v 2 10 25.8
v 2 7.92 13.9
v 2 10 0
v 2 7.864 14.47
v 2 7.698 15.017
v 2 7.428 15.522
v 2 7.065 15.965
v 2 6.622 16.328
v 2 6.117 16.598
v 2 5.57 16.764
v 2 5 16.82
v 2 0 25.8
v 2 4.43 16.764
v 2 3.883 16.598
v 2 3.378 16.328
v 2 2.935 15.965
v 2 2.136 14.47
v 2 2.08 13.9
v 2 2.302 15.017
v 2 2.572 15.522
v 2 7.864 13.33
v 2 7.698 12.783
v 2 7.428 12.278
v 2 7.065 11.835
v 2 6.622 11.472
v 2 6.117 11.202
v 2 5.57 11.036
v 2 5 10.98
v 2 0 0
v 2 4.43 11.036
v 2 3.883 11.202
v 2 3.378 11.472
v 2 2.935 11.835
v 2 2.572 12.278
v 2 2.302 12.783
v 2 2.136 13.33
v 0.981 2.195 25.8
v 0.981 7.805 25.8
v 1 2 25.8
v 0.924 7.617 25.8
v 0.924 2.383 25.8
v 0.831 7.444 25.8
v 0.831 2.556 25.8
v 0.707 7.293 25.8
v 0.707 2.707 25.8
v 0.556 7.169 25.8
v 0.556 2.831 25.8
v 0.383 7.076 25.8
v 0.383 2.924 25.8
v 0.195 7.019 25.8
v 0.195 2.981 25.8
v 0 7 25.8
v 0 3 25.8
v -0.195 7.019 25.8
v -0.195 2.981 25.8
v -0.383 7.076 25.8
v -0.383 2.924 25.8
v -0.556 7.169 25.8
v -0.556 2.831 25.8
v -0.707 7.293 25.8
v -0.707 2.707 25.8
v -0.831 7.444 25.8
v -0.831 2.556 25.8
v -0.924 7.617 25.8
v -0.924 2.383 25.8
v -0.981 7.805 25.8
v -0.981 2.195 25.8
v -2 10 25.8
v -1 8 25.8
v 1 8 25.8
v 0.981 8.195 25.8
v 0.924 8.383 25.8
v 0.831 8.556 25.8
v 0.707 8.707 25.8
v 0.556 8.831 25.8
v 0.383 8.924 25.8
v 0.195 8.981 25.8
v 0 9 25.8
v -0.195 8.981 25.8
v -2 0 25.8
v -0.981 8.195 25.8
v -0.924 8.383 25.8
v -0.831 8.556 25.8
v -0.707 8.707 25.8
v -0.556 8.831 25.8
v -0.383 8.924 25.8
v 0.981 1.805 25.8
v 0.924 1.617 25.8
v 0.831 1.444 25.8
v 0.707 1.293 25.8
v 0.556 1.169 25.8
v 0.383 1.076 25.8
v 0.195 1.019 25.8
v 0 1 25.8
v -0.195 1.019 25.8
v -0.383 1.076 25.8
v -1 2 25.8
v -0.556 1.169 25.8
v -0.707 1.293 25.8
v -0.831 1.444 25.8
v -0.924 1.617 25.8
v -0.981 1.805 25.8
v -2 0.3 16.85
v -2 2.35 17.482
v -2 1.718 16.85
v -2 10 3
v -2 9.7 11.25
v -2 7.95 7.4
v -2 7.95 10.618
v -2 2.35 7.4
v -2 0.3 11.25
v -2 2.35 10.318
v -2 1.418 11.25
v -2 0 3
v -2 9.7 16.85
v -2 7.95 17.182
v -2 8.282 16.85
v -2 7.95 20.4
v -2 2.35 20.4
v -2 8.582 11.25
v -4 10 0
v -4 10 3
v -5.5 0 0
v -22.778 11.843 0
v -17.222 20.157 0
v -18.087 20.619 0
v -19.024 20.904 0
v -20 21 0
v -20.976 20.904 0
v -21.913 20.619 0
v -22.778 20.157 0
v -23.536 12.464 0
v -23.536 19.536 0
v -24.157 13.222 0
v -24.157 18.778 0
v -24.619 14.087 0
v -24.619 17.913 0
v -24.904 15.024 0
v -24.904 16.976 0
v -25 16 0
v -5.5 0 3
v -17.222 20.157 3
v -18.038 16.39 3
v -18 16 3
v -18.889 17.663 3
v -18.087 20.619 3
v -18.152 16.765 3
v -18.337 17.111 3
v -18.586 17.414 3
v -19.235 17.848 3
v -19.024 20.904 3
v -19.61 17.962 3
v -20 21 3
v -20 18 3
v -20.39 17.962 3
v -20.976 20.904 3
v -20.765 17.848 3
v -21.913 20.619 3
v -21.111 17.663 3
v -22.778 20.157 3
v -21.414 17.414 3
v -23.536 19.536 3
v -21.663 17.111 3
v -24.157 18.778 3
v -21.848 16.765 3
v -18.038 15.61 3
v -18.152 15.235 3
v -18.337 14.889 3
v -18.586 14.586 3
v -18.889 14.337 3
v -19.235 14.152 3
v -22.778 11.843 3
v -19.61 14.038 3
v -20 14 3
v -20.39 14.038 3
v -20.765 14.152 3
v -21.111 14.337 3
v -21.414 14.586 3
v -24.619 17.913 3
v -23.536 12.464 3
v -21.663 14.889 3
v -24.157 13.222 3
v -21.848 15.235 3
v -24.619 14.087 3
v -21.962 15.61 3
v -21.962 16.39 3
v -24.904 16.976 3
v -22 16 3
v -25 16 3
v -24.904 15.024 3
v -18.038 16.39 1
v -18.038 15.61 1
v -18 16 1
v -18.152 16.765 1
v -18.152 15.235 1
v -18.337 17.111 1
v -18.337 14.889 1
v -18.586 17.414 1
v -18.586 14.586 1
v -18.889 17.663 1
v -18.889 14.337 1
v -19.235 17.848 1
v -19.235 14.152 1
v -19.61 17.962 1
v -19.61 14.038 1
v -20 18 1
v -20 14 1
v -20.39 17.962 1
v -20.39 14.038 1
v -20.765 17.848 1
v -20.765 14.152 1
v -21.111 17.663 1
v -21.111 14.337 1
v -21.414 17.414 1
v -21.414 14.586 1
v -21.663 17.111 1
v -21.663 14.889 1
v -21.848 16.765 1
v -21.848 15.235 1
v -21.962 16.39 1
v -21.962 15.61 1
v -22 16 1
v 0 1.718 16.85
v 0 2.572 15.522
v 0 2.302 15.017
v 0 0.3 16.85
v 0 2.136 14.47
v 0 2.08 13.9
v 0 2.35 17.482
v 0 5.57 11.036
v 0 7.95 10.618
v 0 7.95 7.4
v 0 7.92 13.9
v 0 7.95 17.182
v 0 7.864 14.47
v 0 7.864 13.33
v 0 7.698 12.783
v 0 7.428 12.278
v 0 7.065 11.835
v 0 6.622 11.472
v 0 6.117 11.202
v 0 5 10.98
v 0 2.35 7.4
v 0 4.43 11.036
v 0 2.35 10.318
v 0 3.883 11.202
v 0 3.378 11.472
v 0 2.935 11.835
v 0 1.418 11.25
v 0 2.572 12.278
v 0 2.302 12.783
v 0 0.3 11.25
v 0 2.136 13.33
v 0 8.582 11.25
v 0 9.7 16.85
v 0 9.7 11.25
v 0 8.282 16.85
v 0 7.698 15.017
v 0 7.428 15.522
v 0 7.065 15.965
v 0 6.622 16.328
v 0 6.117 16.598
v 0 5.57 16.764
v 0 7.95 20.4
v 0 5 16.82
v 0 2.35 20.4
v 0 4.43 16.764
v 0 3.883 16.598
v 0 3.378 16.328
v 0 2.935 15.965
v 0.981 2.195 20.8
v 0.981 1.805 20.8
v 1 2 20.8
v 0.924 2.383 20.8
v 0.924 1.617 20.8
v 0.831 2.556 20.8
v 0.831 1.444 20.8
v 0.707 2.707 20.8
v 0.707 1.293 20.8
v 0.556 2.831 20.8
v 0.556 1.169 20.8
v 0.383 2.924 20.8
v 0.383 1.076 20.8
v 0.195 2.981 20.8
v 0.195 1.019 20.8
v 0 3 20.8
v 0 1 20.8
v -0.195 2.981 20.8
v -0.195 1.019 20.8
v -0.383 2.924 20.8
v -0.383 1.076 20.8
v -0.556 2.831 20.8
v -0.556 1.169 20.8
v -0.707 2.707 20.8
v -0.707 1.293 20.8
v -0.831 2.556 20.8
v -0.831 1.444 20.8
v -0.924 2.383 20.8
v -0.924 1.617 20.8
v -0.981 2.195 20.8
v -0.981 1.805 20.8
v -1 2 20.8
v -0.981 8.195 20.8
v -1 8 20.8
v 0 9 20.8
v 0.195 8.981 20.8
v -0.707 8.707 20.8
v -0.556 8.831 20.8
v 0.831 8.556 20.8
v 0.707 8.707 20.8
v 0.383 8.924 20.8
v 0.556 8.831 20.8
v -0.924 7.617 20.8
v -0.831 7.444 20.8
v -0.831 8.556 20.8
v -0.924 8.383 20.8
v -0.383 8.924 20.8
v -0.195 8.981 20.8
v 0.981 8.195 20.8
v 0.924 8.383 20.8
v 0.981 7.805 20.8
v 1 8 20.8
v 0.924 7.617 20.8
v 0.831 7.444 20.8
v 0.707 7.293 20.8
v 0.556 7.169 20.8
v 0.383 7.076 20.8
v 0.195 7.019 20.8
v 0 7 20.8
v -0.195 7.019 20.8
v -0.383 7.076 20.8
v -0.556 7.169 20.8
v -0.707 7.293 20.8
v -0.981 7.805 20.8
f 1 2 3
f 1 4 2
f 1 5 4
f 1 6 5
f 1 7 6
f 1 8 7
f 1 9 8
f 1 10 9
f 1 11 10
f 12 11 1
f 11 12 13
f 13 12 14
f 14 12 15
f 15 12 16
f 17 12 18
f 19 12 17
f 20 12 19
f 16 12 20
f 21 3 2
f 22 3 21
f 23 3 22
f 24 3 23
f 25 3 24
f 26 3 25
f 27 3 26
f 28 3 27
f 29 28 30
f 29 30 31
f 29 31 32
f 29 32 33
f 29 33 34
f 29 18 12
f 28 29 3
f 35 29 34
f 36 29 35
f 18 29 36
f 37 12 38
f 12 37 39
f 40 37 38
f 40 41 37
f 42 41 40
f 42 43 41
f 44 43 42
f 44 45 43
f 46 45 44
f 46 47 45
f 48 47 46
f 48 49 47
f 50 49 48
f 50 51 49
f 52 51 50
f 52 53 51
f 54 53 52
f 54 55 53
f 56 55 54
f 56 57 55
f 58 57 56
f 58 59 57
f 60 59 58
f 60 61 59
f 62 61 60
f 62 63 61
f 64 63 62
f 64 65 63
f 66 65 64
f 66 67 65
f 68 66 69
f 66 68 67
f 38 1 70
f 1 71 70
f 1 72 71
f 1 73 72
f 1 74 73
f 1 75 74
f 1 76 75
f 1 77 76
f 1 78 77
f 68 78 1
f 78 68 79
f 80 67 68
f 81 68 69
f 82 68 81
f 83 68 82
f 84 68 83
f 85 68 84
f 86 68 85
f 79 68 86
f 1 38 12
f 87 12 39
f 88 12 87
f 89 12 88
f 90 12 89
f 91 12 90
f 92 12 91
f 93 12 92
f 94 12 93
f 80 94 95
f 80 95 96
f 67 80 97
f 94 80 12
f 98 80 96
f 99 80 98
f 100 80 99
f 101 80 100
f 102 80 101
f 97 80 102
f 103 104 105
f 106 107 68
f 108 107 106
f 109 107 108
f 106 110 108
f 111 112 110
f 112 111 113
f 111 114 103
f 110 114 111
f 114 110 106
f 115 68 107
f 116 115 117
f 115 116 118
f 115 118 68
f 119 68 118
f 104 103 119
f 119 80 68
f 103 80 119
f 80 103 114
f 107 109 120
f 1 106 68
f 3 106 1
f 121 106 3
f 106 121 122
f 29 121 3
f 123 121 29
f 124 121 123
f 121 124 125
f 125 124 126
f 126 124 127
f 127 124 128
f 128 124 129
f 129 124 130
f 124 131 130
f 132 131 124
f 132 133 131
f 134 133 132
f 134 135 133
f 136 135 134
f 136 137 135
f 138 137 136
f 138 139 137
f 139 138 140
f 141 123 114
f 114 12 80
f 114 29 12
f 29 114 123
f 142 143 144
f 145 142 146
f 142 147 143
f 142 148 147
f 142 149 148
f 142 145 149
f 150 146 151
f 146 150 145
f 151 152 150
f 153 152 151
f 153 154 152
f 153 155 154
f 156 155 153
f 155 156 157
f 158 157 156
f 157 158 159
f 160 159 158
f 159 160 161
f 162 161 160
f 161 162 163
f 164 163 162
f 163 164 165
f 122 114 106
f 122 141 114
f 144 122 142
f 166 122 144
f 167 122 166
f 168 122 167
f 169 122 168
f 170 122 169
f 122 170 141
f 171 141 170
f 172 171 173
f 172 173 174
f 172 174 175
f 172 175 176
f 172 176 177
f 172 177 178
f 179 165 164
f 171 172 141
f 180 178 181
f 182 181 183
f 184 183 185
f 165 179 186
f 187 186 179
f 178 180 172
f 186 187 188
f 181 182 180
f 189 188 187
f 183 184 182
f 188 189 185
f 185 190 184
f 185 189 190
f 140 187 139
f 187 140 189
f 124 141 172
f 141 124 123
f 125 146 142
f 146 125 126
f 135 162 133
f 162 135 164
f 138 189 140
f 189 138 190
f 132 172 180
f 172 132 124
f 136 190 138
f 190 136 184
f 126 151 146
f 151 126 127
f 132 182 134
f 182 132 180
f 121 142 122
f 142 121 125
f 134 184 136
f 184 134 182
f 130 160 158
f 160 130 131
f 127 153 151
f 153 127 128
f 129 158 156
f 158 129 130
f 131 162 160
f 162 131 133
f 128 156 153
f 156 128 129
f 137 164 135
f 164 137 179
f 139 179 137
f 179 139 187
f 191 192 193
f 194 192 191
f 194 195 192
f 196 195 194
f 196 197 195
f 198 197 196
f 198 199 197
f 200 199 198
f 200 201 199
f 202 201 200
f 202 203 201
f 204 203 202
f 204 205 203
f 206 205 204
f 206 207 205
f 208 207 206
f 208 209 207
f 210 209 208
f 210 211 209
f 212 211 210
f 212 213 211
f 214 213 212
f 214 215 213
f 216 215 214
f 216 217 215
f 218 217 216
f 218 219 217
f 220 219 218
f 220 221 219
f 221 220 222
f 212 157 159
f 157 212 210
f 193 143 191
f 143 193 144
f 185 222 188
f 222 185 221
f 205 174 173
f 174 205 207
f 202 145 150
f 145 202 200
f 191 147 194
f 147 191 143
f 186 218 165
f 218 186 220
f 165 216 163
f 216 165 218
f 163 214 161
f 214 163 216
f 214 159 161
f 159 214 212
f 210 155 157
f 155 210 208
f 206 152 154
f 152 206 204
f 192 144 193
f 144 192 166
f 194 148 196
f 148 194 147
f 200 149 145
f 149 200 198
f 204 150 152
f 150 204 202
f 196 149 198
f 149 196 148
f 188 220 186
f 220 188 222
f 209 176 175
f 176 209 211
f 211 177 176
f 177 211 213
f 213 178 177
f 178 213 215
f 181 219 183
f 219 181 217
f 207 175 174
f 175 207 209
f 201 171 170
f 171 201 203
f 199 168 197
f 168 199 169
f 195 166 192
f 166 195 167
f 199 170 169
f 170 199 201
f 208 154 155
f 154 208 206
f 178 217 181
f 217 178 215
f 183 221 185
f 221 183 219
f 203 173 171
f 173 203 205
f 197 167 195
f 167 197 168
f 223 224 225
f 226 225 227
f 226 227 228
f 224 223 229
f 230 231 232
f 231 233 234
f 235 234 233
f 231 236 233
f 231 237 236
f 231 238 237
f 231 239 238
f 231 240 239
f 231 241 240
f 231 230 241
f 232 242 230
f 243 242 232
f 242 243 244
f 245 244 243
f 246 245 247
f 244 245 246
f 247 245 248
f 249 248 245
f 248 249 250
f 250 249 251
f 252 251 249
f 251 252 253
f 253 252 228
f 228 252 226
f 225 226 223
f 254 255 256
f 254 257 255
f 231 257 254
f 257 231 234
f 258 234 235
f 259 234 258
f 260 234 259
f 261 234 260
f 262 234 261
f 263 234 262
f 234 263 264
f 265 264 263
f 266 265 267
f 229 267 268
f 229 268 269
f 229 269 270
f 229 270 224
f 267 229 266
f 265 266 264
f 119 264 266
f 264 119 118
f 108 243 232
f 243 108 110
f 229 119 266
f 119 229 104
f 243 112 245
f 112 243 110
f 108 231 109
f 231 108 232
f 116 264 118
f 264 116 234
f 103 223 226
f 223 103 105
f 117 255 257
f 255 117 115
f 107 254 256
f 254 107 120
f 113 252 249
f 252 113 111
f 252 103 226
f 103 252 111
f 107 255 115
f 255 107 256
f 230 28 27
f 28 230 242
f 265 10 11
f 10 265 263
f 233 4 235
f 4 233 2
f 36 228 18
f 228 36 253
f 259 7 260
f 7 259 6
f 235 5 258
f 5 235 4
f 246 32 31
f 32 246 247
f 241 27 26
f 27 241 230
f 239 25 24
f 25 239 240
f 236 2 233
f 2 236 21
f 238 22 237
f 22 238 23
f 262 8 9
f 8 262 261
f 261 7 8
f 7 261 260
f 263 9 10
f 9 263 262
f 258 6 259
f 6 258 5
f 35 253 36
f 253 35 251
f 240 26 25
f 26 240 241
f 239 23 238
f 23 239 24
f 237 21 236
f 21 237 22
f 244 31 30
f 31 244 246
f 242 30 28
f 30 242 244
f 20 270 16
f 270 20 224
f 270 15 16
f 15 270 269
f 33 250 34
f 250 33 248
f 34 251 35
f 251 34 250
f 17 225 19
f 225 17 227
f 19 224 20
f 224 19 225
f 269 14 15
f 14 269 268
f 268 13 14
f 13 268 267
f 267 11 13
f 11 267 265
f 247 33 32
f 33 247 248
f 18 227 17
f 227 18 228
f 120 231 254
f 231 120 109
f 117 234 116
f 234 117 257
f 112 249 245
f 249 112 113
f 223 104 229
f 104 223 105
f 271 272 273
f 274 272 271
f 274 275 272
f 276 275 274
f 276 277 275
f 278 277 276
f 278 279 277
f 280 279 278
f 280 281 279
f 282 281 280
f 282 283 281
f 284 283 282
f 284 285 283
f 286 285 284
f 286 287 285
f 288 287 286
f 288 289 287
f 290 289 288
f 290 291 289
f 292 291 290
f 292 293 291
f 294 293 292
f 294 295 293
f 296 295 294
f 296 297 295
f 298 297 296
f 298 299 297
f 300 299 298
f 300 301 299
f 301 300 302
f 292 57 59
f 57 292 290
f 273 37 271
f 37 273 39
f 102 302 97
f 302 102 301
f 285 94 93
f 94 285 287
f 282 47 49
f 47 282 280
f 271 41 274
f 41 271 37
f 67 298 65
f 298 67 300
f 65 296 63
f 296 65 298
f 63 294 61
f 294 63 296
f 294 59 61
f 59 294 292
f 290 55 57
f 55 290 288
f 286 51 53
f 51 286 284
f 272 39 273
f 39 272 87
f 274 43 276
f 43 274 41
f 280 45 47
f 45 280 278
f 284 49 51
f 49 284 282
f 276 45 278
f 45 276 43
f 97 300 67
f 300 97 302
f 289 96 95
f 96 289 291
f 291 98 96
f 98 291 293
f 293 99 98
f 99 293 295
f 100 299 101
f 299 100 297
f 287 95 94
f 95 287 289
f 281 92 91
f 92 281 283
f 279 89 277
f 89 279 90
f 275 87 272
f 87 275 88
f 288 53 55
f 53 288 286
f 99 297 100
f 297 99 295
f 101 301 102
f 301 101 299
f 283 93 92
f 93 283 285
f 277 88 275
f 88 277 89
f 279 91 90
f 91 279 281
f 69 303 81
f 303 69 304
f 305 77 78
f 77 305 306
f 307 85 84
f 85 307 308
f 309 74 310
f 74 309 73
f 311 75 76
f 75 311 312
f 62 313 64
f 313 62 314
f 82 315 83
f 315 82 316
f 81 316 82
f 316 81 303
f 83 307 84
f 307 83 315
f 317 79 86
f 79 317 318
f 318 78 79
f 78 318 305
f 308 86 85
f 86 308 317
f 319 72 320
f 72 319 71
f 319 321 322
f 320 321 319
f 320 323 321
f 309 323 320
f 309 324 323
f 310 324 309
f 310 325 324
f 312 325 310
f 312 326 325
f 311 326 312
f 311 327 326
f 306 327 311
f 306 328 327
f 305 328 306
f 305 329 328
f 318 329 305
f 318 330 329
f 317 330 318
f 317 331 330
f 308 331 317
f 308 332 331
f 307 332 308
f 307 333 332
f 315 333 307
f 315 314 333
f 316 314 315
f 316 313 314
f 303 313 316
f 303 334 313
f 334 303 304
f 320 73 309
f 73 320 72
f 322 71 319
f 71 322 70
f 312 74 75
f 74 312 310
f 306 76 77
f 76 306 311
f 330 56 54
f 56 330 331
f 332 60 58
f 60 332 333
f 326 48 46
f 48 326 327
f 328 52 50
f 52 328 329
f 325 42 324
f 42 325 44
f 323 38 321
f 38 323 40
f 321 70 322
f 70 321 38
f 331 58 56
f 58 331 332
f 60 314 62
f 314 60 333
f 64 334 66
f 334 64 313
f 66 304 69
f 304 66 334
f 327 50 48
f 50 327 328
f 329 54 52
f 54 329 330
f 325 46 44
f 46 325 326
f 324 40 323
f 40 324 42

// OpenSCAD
// file: config.scad
//Parameters for servo_lx16a
$fn = 24;
//x,y,z => l,w,h


servo_l         = 45.20; 
servo_w         = 24.70; 
body_h          = 32;

servo_h         = 35;

hub_offset      = 10.10;

rad = 2;


w_between_holes = 20.5;
l_between_top_holes = 20.7;
l_between_bottom_holes = 24.45;
top_hole_l_offset = 6.1;
bottom_hole_l_offset = 2.35;

hole_dia = 1.6;
attach_screw_l = 5;

top_hub_carve_h = 2.6;
bottom_hub_carve_h = 3.4;

top_attach_carve_h = 1.1;
bottom_attach_carve_h = 1.9;

hub_carve_r = 10.8;

hub_r = 10.1;

w_between_ridges = 19.5;

top_horn_h = 3.20;
bottom_horn_h = 3.85;

top_horn_r = 3.15;
bottom_horn_r = 3;



hub_h           = 4;
small_hub_r     = 6.15/2;  
horn_r          = 4.66/2;
horn_h          = 3;

wire_l          = 4;
wire_w          = 1.5;
wire_h          = 1;
wire_place      = 4.8;
// file: electronics.scad
$fn=100;

//on_off_switch();

//pi_zero();

//translate ([0,100,0])
//pca9685();

//dc_dc();

//pi_camera();



module header(pins, rows){
  color("darkgrey") cube([2.54*pins,2.54*rows,1.27]);
  
  color("gold")
  for(x=[0:pins-1],y=[0:rows-1])
    translate([x*2.54+(1.27+.6)/2,y*2.54+(1.27+.6)/2,-3.5]) cube([0.6,0.6,11.5]);
}


module pi_zero(){
    // PCB
    color("limegreen") difference(){
        hull(){
            translate([-(65-6)/2,-(30-6)/2,0]) cylinder(r=3, h=1.4 );
            translate([-(65-6)/2, (30-6)/2,0]) cylinder(r=3, h=1.4 );
            translate([ (65-6)/2,-(30-6)/2,0]) cylinder(r=3, h=1.4 );
            translate([ (65-6)/2, (30-6)/2,0]) cylinder(r=3, h=1.4 );
        }
        
        translate([-65/2+3.5,-30/2+3.5,-1]) cylinder(d=2.75, h=3);
        translate([-65/2+3.5, 30/2-3.5,-1]) cylinder(d=2.75, h=3);
        translate([65/2-3.5,-30/2+3.5,-1]) cylinder(d=2.75, h=3);
        translate([65/2-3.5, 30/2-3.5,-1]) cylinder(d=2.75, h=3);
    }
    
    // Header
    translate([-10*2.54,30/2-2.54-3.5,1.4])
    header(20,2);
    
    translate([-65/2,-30/2,1.4]){
        color("silver"){
        
            // micro USB
            translate([41-8/2,-1.5,0]) cube([8,6,2.6]);
            translate([54-8/2,-1.5,0]) cube([8,6,2.6]);        
            
            // HDMI
            translate([6.9,-1.5,0]) cube([13,7,3]);
        }
    
        color("darkgrey"){
        
            // Camera
            translate([64-4/2,7.1,0]) cube([4,16,2.5]);
        }
    
        // Micro SD Card
        color("silver") translate([0,8.6,-0]) cube([13,14,1.5]);    
        color("darkgrey") translate([-2.4,10.1,0]) cube([2.4,11,1]);
    }
}



module pca9685(withHeader=true){  
  
    // PCB
    color("limegreen") difference(){
        translate([0,0,0]) hull(){
            translate([-(62.5-6)/2,-(25.4-6)/2,0]) cylinder(r=3, h=1.4 );
            translate([-(62.5-6)/2, (25.4-6)/2,0]) cylinder(r=3, h=1.4 );
            translate([ (62.5-6)/2,-(25.4-6)/2,0]) cylinder(r=3, h=1.4 );
            translate([ (62.5-6)/2, (25.4-6)/2,0]) cylinder(r=3, h=1.4 );
        }
        
        translate([-55.9/2,-18.8/2,-1]) cylinder(d=2.75, h=3);
        translate([-55.9/2, 18.8/2,-1]) cylinder(d=2.75, h=3);
        translate([55.9/2,-18.8/2,-1]) cylinder(d=2.75, h=3);
        translate([55.9/2, 18.8/2,-1]) cylinder(d=2.75, h=3);
    } 
    
    
    // capacitor
    color("silver")
    translate([-(62.5/2)+17.1,(25.4-8.3)/2,1.4])
    cylinder(d=8.3, h=12.7);
    
    //power connector
    color("blue")
    translate([-(62.5/2)+25.1+2.54*2,(25.4-8.3)/2,1.4])
    cube([2.54*2,4,8]);
    
    // Header top
    translate([-(62.5/2)+5.65,-25.4/2,1.4])
    header(4,3);
    
    translate([2.25,-25.4/2,1.4])
    header(4,3);
    
    translate([-2.25-2.54*4,-25.4/2,1.4])
    header(4,3);
    
    translate([62.5/2-5.65-2.54*4,-25.4/2,1.4])
    header(4,3);
    
    translate([62.5/2,-25.4/2+5.08,1.4])
    rotate([0,0,90])
    header(6,1);
    
    translate([-62.5/2+2.54,-25.4/2+5.08,1.4])
    rotate([0,0,90])
    header(6,1);

  
}

module dc_dc(){
    
    // PCB
    color("limegreen") difference(){
        translate([0,0,0]) hull(){
            translate([-(24.5-6)/2,-(48-6)/2,0]) cylinder(r=3, h=1.4 );
            translate([-(24.5-6)/2, (48-6)/2,0]) cylinder(r=3, h=1.4 );
            translate([ (24.5-6)/2,-(48-6)/2,0]) cylinder(r=3, h=1.4 );
            translate([ (24.5-6)/2, (48-6)/2,0]) cylinder(r=3, h=1.4 );
        }
      
        translate([0,0,-1]) {
            
            //translate([-17/2,-35/2,0])
            //cylinder(d=3.15, h=2.5);
            
            translate([-17/2,35/2, 0])
            cylinder(d=3.15, h=2.5);
            
            translate([17/2,-35/2, 0])
            cylinder(d=3.15, h=2.5);
            
            //translate([17/2,35/2, 0])
            //cylinder(d=3.15, h=2.5); 
          
        }


    } 
    
    
    // capacitors
    color("darkblue")
    translate([-(24.5/2)+12.1,(48-8)/2,1.4])
    cylinder(d=8, h=10);
    
    color("darkblue")
    translate([-(24.5/2)+12.1,-(48-8)/2,1.4])
    cylinder(d=8, h=10);
    
    //toroid
    
    difference(){
        
        color("orange")
        translate([(24.5/2)-22.1+9,(48-30)/2,1.4])
        cylinder(d=12, h=7.6);
        
        color("orange")
        translate([(24.5/2)-22.1+9,(48-30)/2,0.5])
        cylinder(d=6, h=11);

        
    }
    
    
    //potentiometer
    color("blue")
    translate([24.5/2-2,-48/2+9,1.4])
    rotate([0,0,90])
    cube([5,10,11]);
    
    
    //IC
    color("black")
    translate([24.5/2-8,-48/2+15,1.4])
    rotate([0,0,90])
    cube([11,11,5]);
    
    
}


module on_off_switch(){
    
    union(){
        
        color("silver")
        translate([-8/2, -4/2, 0])
        cube([8, 4, 3.8]);
        
        color("black")
        translate([-1.5/2, -1.5/2, 3.8])
        cube([1.5, 1.5, 3]);
        
        color("silver")
        translate([-0.5/2, -0.5/2, -3.2])
        cube([0.5, 0.5, 3.2]);
        
        color("silver")
        translate([-0.5/2-2.5, -0.5/2, -3.2])
        cube([0.5, 0.5, 3.2]);
        
        color("silver")
        translate([-0.5/2+2.5, -0.5/2, -3.2])
        cube([0.5, 0.5, 3.2]);
        
        
        
        
    }
    
}


module pi_camera(){
    difference(){
        union(){
            color("limegreen")
            translate([-25.5/2, -24.5/2, 0])
            cube([25.5, 24.5, 0.9]);
            
            
            //camera sensor
            color("darkgrey")
            translate([-8.5/2, -8.5/2+2.4, 0.9])
            cube([8.5, 8.5, 3.5]);
            
            color("darkgrey")
            translate([0, 2.4, 0.9+3.5])
            cylinder(d=8, h=0.75, $fn=32);
        
            color("darkgrey")
            translate([0, 2.4, 0.9+3.5+0.75])
            cylinder(d=6, h=0.75, $fn=32);
            
            color("darkgrey")
            translate([0, 2.4, 0.9+3.5+0.75+0.75])
            cylinder(d1=2, d2=5, h=2, $fn=32);
            
            //sensor connector
            color("orange")
            translate([-8.5/2, -8.5/2+2.4-10.5, 0.9])
            cube([8.5, 10.5, 2.5]);
            
            //led
            color("white")
            translate([-20/2, -8.5/2+2.4-7, 0.9])
            cube([20, 3, 1]);            
            
            
            //connector
            color("white")
            translate([-20.8/2, -5.5+24/2, -2.4])
            cube([20.8, 5.5, 2.4]);
            
            
    
        }
          
        translate([-21/2,-20/2,-1]) cylinder(d=2.1, h=3);
        translate([-21/2, 20/2-7.5,-1]) cylinder(d=2.1, h=3);
        translate([21/2,-20/2,-1]) cylinder(d=2.1, h=3);
        translate([21/2, 20/2-7.5,-1]) cylinder(d=2.1, h=3);
    }
    
    
}
// file: servo_5g.scad
include <Config.scad>

servo_5g();


$fn = 24;
//x,y,z => l,w,h


module servo_5g() {
  
    translate([-servo5_l/2, -servo5_w/2, -body5_h/2-hub5_h/2-horn5_h/2]) {
    
        color("white") 
        translate([servo5_l/2,servo5_l/2,body5_h+hub5_h])
        cylinder(r=horn5_r,h=horn5_h);
        
        color("deepSkyBlue",.7) //deepSkyBlue
        union() {
            cube([servo5_l,servo5_w,body5_h]);
            translate([servo5_l/2,servo5_l/2,body5_h])
            cylinder(r=servo5_l/2,h=hub5_h);
            translate([servo5_l/2,servo5_l/2+3.7,body5_h])
            cylinder(r=small_hub5_r,h=hub5_h);
            
        }
    }
}
// file: servo_12g.scad
include <config.scad>


servo_12g();


$fn = 24;
//x,y,z => l,w,h


module servo_12g() {
  
    translate([-servo_l/2, -servo_w/2, -body_h/2-hub_h/2-horn_h/2]) {
    
        color("white") 
        translate([servo_l/2,servo_l/2,body_h+hub_h])
        cylinder(r=horn_r,h=horn_h);
        
        color("deepSkyBlue",.7) //deepSkyBlue
        union() {
            cube([servo_l,servo_w,body_h]);
            translate([servo_l/2,servo_l/2,body_h])
            cylinder(r=servo_l/2,h=hub_h);
            translate([servo_l/2,servo_l/2+6.30,body_h])
            cylinder(r=small_hub_r,h=hub_h);
            
        }
    }
}

module roundedRect(size, radius)
{
x = size[0];
y = size[1];
z = size[2];

translate([x/2+radius/2, y/2+radius/2, 0]){
linear_extrude(height=z)
hull()
{
// place 4 circles in the corners, with the given radius
translate([(-x/2)+(radius/2), (-y/2)+(radius/2), 0])
circle(r=radius);

translate([(x/2)-(radius/2), (-y/2)+(radius/2), 0])
circle(r=radius);

translate([(-x/2)+(radius/2), (y/2)-(radius/2), 0])
circle(r=radius);

translate([(x/2)-(radius/2), (y/2)-(radius/2), 0])
circle(r=radius);
}
}
}
// file: Config.scad
//Parameters for 12g servo
$fn = 24;
//x,y,z => l,w,h

tap_r = 0.85;
hole_r = 1.0;

servo_l         = 12;  // was 12
servo_w         = 24;  // was 23
body_h          = 20.80;

servo_h         = 27; //not used in code was 27

wing_w          = 4.5;
wing_h          = 2.33;
wing_place      = 16.3;   
hole_offset     = 2.2;    //not checked
mount_hole_r    = 2/2;
mount_slot      = 1;

servo_ww        = servo_w+wing_w*2; // not used in code but is handy number

hub_h           = 4;
small_hub_r     = 6.15/2;  
horn_r          = 4.66/2;
horn_h          = 3;

wire_l          = 4;
wire_w          = 1.5;
wire_h          = 1;
wire_place      = 4.8;

servo_full_w    = servo_w+wing_w*2;

rad = 2;




//Parameters for 5g servo

servo5_l         = 8.6; 
servo5_w         = 18.6; 
body5_h          = 14.65;


hub5_h = 2.15;
small_hub5_r = 4.6/2;  
horn5_r = 4.66/2;
horn5_h = 3;

servo5_h         = body5_h+hub5_h+horn5_h;

mount_x = servo5_l + 2;
mount_y = servo5_w + 2;
mount_round = 1;
servo_tol = 0.2;
servo5_x     = servo5_l + servo_tol*2; //~12
servo5_y     = servo5_w + servo_tol*8; //~23
// main file
include <Config.scad>
use <servo_12g.scad>
use <servo_5g.scad>
use <electronics.scad>


mirror()
Citro6_52();


module Citro6_52(){
    
    difference(){
        union(){
            
            translate([-2, 0, 0])
            cube([4, 10, servo5_h+6]);
            
            translate([0, 0, 0])
            cube([4, 10, 3]);
            
            translate([0, 0, 0]) hull(){
                
                translate([20, 16, 0]) 
                cylinder(d=10, h=3, $fn=32);
                
                translate([4,0,0]) 
                cube([1.5, 10, 3]);
    
            }
        }
        
        translate([20, 16, 1]) 
        cylinder(d=4, h=4, $fn=32);
        
        /**
        translate([2, 10/2, servo5_h/2+3])
        #hull(){
            
            translate([0, -5.3/2-1, -5.3/2-1])
            rotate([0, 90, 0])
            cylinder(d=2, h=2, $fn=32);
            
            translate([0, 5.3/2+1, 5.3/2+1])
            rotate([0, 90, 0])
            cylinder(d=2, h=2, $fn=32);
            
        }
        **/ 
            
        translate([0, -5.3/2+10/2, -13/2+servo5_h/2+4])
        cube([2.1, 5.6, 13]);
        
        translate([0, -9.4/2+10/2, -5.3/2+servo5_h/2+4])
        cube([2.1, 9.4, 5.6]);
        
        translate([-2.1, 10/2, servo5_h/2+4])
        rotate([0, 90, 0])
        cylinder(d=5.84, h=4, $fn=32);
        
        translate([0, 10/2, servo5_h/2+4])
        rotate([22.5, 0, 0])
        rotate([0, 90, 0])
        cylinder(d=9.54, h=4, $fn=8);
        
        translate([0, 2, servo5_h+1]) 
        cylinder(d=2, h=6.1, $fn=32);
        
        translate([0, 8, servo5_h+1]) 
        cylinder(d=2, h=6.1, $fn=32);
        
    }
}
